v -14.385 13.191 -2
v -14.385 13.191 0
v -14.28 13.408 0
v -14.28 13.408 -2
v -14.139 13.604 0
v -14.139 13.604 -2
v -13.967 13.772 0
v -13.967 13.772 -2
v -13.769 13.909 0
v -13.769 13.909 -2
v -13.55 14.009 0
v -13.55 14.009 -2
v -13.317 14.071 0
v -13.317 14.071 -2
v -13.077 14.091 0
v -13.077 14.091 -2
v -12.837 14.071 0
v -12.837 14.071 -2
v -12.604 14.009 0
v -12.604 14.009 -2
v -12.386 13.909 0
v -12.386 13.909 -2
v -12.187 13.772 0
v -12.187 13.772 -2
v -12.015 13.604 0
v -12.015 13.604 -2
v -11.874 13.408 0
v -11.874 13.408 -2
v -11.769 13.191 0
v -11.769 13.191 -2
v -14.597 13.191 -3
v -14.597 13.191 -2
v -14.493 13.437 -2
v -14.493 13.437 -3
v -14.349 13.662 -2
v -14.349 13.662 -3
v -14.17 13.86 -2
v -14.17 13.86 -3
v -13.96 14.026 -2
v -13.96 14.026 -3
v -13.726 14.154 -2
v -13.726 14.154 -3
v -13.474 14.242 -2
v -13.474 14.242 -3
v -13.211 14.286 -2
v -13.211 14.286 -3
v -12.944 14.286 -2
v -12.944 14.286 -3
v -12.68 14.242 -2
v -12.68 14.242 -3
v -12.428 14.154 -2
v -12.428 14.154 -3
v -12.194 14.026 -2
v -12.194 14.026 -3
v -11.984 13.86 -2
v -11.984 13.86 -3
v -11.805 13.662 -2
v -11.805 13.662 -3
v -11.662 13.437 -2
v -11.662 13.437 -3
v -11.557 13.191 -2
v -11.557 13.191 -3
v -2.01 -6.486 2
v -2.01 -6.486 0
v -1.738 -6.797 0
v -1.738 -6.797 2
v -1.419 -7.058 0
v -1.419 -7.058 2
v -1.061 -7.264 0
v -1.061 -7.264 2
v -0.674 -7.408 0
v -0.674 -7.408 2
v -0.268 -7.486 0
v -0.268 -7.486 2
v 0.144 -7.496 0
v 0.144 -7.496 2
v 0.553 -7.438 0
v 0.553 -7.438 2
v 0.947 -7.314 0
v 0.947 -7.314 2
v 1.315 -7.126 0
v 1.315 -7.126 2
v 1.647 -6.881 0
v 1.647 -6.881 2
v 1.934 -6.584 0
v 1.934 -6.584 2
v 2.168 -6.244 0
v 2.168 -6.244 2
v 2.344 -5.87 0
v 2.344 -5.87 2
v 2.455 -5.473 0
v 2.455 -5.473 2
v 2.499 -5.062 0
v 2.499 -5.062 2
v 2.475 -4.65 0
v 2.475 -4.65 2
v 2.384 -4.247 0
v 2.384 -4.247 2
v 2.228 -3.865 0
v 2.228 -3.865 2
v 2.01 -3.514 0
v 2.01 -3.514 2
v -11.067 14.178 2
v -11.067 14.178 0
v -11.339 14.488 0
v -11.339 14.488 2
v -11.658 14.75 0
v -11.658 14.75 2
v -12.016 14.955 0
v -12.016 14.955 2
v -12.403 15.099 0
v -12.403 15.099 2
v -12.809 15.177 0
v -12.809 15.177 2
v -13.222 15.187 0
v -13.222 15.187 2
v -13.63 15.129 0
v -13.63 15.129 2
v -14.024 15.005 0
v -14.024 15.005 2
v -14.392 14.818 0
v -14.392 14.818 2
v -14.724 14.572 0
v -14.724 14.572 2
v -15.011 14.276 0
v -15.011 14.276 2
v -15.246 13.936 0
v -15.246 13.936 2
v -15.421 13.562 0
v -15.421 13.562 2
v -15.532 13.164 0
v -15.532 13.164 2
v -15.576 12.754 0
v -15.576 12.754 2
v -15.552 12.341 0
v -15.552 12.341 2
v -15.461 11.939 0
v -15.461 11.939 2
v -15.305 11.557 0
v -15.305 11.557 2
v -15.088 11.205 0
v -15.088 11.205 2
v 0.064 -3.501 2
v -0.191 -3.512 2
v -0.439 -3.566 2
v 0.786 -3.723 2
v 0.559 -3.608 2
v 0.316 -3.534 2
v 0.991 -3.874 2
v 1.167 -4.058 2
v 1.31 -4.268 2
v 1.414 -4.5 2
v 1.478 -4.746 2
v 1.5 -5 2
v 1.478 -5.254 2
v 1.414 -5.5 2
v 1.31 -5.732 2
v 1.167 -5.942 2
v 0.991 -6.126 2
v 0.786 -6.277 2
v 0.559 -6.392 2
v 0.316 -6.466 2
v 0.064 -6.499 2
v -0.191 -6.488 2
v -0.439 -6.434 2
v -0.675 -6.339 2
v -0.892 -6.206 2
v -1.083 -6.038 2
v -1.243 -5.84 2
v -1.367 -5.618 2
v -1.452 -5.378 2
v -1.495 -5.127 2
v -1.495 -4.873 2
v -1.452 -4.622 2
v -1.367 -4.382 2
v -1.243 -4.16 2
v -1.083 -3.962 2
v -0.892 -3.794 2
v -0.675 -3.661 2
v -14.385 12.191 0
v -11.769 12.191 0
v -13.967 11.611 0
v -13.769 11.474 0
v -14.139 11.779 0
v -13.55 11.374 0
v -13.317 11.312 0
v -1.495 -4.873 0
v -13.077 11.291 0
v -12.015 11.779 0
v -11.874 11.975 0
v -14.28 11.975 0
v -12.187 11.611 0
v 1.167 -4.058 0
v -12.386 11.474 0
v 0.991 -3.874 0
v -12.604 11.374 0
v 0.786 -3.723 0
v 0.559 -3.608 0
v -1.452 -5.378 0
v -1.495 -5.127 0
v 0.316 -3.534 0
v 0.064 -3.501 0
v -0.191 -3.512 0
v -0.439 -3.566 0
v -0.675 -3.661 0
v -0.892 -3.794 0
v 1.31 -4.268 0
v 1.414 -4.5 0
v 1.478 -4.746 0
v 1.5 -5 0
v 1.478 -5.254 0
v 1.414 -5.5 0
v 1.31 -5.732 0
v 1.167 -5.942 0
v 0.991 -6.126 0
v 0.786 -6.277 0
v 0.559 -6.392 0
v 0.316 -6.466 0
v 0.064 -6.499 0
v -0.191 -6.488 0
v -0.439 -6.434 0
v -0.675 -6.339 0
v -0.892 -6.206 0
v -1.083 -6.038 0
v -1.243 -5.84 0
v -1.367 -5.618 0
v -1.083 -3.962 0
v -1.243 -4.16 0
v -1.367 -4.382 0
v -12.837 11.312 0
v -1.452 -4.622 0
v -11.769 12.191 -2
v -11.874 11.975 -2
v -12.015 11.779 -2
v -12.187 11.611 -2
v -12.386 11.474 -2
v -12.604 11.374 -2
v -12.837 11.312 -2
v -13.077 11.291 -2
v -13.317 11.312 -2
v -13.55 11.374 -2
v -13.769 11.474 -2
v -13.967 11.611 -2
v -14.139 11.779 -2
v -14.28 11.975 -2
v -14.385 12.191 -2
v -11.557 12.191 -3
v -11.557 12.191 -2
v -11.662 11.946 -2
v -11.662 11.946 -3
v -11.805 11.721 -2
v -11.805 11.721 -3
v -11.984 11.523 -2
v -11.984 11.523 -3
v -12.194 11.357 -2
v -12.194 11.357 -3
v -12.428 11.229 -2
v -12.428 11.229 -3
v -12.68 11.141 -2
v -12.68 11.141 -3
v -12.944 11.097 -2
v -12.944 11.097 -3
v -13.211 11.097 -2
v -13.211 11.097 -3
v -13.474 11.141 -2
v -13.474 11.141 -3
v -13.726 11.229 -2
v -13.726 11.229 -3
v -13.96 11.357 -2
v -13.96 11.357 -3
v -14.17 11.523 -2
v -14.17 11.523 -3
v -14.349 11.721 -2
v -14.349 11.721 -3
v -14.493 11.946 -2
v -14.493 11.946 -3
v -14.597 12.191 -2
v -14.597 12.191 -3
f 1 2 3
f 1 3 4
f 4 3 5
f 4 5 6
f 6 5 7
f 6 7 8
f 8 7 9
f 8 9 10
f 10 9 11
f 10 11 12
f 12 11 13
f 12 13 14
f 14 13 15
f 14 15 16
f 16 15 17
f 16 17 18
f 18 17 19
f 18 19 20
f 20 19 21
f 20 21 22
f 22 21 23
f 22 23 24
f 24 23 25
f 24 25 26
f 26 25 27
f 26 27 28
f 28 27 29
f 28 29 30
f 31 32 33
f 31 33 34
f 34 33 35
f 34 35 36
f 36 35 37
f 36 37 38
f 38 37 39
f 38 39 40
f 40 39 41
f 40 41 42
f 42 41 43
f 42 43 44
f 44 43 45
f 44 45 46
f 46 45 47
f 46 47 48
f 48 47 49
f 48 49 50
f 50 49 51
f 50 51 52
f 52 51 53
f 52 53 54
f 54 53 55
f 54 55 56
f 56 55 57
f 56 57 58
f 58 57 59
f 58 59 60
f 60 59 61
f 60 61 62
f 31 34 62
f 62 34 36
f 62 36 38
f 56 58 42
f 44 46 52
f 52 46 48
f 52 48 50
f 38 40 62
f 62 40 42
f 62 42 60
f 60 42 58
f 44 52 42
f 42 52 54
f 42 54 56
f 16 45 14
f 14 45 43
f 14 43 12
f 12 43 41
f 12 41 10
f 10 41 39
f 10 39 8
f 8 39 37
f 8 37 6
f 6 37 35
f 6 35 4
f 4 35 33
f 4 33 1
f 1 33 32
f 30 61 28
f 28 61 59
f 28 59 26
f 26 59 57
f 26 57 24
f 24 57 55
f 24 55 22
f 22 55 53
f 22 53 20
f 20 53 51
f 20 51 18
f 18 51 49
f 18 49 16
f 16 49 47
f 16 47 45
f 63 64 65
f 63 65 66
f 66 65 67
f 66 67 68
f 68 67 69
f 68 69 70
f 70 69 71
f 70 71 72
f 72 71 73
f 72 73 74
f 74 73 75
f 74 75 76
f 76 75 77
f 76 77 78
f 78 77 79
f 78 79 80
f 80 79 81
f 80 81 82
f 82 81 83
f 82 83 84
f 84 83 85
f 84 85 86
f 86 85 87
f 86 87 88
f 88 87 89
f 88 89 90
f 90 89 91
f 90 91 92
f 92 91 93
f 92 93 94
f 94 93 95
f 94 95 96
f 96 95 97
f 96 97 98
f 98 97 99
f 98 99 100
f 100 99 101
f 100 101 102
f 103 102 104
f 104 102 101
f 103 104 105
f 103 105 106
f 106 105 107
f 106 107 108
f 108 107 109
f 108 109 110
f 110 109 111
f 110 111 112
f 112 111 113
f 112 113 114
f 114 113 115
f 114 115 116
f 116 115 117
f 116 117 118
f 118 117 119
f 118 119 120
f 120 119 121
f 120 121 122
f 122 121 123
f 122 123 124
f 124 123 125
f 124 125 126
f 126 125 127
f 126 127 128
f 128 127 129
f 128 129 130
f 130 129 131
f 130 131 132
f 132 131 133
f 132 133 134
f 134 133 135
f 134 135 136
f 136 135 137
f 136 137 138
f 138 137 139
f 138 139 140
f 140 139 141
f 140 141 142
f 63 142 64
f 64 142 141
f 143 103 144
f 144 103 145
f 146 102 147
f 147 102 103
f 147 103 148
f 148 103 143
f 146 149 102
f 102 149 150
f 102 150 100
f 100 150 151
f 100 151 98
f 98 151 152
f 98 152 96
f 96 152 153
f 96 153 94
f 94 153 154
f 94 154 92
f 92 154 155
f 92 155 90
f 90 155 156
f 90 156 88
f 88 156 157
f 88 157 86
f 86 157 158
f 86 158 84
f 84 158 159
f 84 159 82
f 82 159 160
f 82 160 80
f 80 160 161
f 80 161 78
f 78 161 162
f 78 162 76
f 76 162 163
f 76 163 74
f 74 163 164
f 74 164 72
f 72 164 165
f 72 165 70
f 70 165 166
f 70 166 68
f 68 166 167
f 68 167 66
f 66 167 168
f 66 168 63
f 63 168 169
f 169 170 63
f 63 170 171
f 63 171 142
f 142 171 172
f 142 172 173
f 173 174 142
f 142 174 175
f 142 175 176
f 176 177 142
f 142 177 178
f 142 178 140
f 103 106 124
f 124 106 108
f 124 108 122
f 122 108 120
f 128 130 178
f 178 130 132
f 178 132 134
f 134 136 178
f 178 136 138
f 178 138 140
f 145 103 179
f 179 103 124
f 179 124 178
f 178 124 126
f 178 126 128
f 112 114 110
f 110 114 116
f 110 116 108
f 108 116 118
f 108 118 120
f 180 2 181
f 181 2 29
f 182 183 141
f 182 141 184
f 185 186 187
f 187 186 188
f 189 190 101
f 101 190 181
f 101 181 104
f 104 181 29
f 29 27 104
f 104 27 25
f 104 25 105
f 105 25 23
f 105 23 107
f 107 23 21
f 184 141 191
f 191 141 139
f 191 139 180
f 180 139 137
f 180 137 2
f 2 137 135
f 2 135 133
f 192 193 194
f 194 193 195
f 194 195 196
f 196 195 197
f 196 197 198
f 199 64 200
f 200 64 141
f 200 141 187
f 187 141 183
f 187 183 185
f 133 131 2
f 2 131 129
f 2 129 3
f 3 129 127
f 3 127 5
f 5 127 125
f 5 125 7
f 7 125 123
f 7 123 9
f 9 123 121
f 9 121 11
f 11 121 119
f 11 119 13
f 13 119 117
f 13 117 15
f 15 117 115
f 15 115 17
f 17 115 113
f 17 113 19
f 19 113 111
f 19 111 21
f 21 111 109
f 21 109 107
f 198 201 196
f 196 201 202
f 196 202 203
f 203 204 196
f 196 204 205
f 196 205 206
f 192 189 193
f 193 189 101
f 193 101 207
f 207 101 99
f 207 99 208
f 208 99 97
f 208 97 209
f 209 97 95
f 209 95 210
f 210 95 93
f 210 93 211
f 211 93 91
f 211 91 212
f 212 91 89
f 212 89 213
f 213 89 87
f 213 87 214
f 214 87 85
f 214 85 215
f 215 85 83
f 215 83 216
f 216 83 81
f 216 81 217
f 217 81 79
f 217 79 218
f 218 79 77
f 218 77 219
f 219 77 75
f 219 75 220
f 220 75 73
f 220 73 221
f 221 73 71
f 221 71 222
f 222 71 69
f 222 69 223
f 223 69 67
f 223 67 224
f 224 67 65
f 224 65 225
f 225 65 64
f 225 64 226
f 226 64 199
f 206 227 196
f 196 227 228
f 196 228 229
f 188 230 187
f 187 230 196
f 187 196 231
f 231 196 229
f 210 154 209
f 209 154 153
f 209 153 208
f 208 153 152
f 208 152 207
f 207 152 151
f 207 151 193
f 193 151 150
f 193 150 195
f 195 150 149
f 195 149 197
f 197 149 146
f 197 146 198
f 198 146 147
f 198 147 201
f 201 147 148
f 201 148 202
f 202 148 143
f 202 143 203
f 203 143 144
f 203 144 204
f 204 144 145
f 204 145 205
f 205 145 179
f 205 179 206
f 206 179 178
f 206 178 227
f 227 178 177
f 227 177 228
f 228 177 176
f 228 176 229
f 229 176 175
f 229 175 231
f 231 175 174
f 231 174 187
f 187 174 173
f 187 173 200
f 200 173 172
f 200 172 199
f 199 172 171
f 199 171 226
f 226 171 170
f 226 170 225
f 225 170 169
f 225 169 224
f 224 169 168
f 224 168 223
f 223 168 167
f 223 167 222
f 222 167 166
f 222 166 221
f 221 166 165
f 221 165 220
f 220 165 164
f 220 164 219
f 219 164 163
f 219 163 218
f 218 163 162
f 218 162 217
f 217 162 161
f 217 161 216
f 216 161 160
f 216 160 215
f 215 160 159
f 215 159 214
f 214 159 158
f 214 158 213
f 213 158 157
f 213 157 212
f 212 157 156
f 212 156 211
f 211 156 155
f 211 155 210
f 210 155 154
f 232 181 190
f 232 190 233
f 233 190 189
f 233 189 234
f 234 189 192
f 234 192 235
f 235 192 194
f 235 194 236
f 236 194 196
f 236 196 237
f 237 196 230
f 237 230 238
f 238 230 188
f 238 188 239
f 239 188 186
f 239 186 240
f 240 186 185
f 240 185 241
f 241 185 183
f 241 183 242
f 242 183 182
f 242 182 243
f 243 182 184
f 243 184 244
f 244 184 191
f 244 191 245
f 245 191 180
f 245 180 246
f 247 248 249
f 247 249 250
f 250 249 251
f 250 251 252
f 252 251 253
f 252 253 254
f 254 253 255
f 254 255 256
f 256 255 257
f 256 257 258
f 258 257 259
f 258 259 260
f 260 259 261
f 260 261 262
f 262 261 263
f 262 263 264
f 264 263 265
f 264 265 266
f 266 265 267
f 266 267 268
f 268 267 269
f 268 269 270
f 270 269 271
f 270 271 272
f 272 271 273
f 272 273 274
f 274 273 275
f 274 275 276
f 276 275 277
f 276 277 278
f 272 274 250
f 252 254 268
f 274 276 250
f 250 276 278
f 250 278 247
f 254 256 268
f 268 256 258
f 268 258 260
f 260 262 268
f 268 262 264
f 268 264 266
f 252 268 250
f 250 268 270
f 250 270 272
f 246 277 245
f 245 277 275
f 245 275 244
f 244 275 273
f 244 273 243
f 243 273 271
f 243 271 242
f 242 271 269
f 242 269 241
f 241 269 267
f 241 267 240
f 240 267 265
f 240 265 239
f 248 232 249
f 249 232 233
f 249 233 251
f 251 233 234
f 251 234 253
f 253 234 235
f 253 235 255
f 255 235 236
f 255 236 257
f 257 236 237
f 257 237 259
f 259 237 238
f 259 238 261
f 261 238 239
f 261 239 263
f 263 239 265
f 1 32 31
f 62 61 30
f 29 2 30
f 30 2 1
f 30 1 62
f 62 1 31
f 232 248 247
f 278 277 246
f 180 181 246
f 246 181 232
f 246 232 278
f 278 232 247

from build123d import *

# Parameters (mm, degrees)
BOSS_EXTRU_1_DEPTH      = 2
ESQUISSE3_R             = 1.5
ENL_V_MAT_EXTRU_1_DEPTH = 2
BOSS_EXTRU_2_START      = -2
ESQUISSE4_R             = 1.4
BOSS_EXTRU_2_DEPTH      = 2
ESQUISSE5_R             = 1.6
BOSS_EXTRU_3_DEPTH      = 1
ESQUISSE6_W             = 4
ESQUISSE6_H             = 1
ENL_V_MAT_EXTRU_2_DEPTH = 3


with BuildPart() as part:
    # Esquisse2 → Boss.-Extru.1 (new body)
    with BuildSketch(Plane.XY):
        with BuildLine():
            Line((-2.010396268, -6.486037297), (-15.087524479, 11.205449858))
            ThreePointArc((-15.087524479, 11.205449858), (-14.563165508, 14.701883422), (-11.066731944, 14.177524451))
            Line((-11.066731944, 14.177524451), (2.010396268, -3.513962703))
            ThreePointArc((2.010396268, -3.513962703), (1.486037297, -7.010396268), (-2.010396268, -6.486037297))
        make_face()
    extrude(amount=BOSS_EXTRU_1_DEPTH)

    # Esquisse3 → Enlèv. mat.-Extru.1 (cut)
    with BuildSketch(Plane.XY.offset(2)):
        with Locations((0, -5)):
            Circle(ESQUISSE3_R)
    extrude(amount=-ENL_V_MAT_EXTRU_1_DEPTH, mode=Mode.SUBTRACT)

    # Esquisse4 → Boss.-Extru.2 (add)
    with BuildSketch(Plane.XY.offset(2).offset(BOSS_EXTRU_2_START)):
        with Locations((-13.077128211, 12.691487155)):
            Circle(ESQUISSE4_R)
    extrude(amount=-BOSS_EXTRU_2_DEPTH)

    # Esquisse5 → Boss.-Extru.3 (add)
    with BuildSketch(Plane(origin=(0, 0, -2), x_dir=(-1, 0, 0), z_dir=(0, 0, -1))):
        with Locations((13.077128211, 12.691487155)):
            Circle(ESQUISSE5_R)
    extrude(amount=BOSS_EXTRU_3_DEPTH)

    # Esquisse6 → Enlèv. mat.-Extru.2 (cut)
    with BuildSketch(Plane(origin=(0, 0, -3), x_dir=(-1, 0, 0), z_dir=(0, 0, -1))):
        with Locations((13.077128211, 12.691487155)):
            Rectangle(ESQUISSE6_W, ESQUISSE6_H)
    extrude(amount=-ENL_V_MAT_EXTRU_2_DEPTH, mode=Mode.SUBTRACT)


solid = part.part
